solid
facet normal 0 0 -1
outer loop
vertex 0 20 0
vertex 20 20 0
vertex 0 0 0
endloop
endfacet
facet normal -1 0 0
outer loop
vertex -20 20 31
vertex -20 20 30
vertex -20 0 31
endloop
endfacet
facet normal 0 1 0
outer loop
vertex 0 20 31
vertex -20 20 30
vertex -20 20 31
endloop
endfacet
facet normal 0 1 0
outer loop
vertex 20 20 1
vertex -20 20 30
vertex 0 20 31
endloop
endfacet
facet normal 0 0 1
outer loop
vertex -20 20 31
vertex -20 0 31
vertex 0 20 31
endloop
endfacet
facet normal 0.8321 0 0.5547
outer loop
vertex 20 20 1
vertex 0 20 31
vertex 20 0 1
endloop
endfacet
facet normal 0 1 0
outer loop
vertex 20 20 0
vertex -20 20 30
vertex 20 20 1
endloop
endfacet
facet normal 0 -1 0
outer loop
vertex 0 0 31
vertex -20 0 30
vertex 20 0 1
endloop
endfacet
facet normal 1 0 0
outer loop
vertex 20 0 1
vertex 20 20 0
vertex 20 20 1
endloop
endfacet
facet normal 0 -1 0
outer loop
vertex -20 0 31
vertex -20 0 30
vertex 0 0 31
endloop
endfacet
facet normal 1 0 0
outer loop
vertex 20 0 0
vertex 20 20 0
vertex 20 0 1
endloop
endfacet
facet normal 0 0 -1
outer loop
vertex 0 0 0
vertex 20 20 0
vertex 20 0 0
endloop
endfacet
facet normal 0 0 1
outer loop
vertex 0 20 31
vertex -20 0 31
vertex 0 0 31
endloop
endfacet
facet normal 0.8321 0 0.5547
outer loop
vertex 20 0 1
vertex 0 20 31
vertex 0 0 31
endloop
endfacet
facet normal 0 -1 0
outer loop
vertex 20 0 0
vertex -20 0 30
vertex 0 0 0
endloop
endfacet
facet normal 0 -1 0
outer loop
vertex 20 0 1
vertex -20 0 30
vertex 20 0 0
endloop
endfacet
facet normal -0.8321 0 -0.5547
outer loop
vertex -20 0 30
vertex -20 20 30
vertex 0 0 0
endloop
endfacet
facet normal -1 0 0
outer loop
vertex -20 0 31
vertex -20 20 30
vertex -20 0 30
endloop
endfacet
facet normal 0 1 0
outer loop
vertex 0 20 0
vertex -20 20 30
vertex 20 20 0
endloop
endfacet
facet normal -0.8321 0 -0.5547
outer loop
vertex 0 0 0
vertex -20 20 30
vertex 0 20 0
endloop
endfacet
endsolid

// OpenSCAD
// Twisted cube using hull
hull() {
    cube([20, 20, 1]);
    
    translate([0, 0, 30])
        rotate([0, 0, 90])
        cube([20, 20, 1]);
}
